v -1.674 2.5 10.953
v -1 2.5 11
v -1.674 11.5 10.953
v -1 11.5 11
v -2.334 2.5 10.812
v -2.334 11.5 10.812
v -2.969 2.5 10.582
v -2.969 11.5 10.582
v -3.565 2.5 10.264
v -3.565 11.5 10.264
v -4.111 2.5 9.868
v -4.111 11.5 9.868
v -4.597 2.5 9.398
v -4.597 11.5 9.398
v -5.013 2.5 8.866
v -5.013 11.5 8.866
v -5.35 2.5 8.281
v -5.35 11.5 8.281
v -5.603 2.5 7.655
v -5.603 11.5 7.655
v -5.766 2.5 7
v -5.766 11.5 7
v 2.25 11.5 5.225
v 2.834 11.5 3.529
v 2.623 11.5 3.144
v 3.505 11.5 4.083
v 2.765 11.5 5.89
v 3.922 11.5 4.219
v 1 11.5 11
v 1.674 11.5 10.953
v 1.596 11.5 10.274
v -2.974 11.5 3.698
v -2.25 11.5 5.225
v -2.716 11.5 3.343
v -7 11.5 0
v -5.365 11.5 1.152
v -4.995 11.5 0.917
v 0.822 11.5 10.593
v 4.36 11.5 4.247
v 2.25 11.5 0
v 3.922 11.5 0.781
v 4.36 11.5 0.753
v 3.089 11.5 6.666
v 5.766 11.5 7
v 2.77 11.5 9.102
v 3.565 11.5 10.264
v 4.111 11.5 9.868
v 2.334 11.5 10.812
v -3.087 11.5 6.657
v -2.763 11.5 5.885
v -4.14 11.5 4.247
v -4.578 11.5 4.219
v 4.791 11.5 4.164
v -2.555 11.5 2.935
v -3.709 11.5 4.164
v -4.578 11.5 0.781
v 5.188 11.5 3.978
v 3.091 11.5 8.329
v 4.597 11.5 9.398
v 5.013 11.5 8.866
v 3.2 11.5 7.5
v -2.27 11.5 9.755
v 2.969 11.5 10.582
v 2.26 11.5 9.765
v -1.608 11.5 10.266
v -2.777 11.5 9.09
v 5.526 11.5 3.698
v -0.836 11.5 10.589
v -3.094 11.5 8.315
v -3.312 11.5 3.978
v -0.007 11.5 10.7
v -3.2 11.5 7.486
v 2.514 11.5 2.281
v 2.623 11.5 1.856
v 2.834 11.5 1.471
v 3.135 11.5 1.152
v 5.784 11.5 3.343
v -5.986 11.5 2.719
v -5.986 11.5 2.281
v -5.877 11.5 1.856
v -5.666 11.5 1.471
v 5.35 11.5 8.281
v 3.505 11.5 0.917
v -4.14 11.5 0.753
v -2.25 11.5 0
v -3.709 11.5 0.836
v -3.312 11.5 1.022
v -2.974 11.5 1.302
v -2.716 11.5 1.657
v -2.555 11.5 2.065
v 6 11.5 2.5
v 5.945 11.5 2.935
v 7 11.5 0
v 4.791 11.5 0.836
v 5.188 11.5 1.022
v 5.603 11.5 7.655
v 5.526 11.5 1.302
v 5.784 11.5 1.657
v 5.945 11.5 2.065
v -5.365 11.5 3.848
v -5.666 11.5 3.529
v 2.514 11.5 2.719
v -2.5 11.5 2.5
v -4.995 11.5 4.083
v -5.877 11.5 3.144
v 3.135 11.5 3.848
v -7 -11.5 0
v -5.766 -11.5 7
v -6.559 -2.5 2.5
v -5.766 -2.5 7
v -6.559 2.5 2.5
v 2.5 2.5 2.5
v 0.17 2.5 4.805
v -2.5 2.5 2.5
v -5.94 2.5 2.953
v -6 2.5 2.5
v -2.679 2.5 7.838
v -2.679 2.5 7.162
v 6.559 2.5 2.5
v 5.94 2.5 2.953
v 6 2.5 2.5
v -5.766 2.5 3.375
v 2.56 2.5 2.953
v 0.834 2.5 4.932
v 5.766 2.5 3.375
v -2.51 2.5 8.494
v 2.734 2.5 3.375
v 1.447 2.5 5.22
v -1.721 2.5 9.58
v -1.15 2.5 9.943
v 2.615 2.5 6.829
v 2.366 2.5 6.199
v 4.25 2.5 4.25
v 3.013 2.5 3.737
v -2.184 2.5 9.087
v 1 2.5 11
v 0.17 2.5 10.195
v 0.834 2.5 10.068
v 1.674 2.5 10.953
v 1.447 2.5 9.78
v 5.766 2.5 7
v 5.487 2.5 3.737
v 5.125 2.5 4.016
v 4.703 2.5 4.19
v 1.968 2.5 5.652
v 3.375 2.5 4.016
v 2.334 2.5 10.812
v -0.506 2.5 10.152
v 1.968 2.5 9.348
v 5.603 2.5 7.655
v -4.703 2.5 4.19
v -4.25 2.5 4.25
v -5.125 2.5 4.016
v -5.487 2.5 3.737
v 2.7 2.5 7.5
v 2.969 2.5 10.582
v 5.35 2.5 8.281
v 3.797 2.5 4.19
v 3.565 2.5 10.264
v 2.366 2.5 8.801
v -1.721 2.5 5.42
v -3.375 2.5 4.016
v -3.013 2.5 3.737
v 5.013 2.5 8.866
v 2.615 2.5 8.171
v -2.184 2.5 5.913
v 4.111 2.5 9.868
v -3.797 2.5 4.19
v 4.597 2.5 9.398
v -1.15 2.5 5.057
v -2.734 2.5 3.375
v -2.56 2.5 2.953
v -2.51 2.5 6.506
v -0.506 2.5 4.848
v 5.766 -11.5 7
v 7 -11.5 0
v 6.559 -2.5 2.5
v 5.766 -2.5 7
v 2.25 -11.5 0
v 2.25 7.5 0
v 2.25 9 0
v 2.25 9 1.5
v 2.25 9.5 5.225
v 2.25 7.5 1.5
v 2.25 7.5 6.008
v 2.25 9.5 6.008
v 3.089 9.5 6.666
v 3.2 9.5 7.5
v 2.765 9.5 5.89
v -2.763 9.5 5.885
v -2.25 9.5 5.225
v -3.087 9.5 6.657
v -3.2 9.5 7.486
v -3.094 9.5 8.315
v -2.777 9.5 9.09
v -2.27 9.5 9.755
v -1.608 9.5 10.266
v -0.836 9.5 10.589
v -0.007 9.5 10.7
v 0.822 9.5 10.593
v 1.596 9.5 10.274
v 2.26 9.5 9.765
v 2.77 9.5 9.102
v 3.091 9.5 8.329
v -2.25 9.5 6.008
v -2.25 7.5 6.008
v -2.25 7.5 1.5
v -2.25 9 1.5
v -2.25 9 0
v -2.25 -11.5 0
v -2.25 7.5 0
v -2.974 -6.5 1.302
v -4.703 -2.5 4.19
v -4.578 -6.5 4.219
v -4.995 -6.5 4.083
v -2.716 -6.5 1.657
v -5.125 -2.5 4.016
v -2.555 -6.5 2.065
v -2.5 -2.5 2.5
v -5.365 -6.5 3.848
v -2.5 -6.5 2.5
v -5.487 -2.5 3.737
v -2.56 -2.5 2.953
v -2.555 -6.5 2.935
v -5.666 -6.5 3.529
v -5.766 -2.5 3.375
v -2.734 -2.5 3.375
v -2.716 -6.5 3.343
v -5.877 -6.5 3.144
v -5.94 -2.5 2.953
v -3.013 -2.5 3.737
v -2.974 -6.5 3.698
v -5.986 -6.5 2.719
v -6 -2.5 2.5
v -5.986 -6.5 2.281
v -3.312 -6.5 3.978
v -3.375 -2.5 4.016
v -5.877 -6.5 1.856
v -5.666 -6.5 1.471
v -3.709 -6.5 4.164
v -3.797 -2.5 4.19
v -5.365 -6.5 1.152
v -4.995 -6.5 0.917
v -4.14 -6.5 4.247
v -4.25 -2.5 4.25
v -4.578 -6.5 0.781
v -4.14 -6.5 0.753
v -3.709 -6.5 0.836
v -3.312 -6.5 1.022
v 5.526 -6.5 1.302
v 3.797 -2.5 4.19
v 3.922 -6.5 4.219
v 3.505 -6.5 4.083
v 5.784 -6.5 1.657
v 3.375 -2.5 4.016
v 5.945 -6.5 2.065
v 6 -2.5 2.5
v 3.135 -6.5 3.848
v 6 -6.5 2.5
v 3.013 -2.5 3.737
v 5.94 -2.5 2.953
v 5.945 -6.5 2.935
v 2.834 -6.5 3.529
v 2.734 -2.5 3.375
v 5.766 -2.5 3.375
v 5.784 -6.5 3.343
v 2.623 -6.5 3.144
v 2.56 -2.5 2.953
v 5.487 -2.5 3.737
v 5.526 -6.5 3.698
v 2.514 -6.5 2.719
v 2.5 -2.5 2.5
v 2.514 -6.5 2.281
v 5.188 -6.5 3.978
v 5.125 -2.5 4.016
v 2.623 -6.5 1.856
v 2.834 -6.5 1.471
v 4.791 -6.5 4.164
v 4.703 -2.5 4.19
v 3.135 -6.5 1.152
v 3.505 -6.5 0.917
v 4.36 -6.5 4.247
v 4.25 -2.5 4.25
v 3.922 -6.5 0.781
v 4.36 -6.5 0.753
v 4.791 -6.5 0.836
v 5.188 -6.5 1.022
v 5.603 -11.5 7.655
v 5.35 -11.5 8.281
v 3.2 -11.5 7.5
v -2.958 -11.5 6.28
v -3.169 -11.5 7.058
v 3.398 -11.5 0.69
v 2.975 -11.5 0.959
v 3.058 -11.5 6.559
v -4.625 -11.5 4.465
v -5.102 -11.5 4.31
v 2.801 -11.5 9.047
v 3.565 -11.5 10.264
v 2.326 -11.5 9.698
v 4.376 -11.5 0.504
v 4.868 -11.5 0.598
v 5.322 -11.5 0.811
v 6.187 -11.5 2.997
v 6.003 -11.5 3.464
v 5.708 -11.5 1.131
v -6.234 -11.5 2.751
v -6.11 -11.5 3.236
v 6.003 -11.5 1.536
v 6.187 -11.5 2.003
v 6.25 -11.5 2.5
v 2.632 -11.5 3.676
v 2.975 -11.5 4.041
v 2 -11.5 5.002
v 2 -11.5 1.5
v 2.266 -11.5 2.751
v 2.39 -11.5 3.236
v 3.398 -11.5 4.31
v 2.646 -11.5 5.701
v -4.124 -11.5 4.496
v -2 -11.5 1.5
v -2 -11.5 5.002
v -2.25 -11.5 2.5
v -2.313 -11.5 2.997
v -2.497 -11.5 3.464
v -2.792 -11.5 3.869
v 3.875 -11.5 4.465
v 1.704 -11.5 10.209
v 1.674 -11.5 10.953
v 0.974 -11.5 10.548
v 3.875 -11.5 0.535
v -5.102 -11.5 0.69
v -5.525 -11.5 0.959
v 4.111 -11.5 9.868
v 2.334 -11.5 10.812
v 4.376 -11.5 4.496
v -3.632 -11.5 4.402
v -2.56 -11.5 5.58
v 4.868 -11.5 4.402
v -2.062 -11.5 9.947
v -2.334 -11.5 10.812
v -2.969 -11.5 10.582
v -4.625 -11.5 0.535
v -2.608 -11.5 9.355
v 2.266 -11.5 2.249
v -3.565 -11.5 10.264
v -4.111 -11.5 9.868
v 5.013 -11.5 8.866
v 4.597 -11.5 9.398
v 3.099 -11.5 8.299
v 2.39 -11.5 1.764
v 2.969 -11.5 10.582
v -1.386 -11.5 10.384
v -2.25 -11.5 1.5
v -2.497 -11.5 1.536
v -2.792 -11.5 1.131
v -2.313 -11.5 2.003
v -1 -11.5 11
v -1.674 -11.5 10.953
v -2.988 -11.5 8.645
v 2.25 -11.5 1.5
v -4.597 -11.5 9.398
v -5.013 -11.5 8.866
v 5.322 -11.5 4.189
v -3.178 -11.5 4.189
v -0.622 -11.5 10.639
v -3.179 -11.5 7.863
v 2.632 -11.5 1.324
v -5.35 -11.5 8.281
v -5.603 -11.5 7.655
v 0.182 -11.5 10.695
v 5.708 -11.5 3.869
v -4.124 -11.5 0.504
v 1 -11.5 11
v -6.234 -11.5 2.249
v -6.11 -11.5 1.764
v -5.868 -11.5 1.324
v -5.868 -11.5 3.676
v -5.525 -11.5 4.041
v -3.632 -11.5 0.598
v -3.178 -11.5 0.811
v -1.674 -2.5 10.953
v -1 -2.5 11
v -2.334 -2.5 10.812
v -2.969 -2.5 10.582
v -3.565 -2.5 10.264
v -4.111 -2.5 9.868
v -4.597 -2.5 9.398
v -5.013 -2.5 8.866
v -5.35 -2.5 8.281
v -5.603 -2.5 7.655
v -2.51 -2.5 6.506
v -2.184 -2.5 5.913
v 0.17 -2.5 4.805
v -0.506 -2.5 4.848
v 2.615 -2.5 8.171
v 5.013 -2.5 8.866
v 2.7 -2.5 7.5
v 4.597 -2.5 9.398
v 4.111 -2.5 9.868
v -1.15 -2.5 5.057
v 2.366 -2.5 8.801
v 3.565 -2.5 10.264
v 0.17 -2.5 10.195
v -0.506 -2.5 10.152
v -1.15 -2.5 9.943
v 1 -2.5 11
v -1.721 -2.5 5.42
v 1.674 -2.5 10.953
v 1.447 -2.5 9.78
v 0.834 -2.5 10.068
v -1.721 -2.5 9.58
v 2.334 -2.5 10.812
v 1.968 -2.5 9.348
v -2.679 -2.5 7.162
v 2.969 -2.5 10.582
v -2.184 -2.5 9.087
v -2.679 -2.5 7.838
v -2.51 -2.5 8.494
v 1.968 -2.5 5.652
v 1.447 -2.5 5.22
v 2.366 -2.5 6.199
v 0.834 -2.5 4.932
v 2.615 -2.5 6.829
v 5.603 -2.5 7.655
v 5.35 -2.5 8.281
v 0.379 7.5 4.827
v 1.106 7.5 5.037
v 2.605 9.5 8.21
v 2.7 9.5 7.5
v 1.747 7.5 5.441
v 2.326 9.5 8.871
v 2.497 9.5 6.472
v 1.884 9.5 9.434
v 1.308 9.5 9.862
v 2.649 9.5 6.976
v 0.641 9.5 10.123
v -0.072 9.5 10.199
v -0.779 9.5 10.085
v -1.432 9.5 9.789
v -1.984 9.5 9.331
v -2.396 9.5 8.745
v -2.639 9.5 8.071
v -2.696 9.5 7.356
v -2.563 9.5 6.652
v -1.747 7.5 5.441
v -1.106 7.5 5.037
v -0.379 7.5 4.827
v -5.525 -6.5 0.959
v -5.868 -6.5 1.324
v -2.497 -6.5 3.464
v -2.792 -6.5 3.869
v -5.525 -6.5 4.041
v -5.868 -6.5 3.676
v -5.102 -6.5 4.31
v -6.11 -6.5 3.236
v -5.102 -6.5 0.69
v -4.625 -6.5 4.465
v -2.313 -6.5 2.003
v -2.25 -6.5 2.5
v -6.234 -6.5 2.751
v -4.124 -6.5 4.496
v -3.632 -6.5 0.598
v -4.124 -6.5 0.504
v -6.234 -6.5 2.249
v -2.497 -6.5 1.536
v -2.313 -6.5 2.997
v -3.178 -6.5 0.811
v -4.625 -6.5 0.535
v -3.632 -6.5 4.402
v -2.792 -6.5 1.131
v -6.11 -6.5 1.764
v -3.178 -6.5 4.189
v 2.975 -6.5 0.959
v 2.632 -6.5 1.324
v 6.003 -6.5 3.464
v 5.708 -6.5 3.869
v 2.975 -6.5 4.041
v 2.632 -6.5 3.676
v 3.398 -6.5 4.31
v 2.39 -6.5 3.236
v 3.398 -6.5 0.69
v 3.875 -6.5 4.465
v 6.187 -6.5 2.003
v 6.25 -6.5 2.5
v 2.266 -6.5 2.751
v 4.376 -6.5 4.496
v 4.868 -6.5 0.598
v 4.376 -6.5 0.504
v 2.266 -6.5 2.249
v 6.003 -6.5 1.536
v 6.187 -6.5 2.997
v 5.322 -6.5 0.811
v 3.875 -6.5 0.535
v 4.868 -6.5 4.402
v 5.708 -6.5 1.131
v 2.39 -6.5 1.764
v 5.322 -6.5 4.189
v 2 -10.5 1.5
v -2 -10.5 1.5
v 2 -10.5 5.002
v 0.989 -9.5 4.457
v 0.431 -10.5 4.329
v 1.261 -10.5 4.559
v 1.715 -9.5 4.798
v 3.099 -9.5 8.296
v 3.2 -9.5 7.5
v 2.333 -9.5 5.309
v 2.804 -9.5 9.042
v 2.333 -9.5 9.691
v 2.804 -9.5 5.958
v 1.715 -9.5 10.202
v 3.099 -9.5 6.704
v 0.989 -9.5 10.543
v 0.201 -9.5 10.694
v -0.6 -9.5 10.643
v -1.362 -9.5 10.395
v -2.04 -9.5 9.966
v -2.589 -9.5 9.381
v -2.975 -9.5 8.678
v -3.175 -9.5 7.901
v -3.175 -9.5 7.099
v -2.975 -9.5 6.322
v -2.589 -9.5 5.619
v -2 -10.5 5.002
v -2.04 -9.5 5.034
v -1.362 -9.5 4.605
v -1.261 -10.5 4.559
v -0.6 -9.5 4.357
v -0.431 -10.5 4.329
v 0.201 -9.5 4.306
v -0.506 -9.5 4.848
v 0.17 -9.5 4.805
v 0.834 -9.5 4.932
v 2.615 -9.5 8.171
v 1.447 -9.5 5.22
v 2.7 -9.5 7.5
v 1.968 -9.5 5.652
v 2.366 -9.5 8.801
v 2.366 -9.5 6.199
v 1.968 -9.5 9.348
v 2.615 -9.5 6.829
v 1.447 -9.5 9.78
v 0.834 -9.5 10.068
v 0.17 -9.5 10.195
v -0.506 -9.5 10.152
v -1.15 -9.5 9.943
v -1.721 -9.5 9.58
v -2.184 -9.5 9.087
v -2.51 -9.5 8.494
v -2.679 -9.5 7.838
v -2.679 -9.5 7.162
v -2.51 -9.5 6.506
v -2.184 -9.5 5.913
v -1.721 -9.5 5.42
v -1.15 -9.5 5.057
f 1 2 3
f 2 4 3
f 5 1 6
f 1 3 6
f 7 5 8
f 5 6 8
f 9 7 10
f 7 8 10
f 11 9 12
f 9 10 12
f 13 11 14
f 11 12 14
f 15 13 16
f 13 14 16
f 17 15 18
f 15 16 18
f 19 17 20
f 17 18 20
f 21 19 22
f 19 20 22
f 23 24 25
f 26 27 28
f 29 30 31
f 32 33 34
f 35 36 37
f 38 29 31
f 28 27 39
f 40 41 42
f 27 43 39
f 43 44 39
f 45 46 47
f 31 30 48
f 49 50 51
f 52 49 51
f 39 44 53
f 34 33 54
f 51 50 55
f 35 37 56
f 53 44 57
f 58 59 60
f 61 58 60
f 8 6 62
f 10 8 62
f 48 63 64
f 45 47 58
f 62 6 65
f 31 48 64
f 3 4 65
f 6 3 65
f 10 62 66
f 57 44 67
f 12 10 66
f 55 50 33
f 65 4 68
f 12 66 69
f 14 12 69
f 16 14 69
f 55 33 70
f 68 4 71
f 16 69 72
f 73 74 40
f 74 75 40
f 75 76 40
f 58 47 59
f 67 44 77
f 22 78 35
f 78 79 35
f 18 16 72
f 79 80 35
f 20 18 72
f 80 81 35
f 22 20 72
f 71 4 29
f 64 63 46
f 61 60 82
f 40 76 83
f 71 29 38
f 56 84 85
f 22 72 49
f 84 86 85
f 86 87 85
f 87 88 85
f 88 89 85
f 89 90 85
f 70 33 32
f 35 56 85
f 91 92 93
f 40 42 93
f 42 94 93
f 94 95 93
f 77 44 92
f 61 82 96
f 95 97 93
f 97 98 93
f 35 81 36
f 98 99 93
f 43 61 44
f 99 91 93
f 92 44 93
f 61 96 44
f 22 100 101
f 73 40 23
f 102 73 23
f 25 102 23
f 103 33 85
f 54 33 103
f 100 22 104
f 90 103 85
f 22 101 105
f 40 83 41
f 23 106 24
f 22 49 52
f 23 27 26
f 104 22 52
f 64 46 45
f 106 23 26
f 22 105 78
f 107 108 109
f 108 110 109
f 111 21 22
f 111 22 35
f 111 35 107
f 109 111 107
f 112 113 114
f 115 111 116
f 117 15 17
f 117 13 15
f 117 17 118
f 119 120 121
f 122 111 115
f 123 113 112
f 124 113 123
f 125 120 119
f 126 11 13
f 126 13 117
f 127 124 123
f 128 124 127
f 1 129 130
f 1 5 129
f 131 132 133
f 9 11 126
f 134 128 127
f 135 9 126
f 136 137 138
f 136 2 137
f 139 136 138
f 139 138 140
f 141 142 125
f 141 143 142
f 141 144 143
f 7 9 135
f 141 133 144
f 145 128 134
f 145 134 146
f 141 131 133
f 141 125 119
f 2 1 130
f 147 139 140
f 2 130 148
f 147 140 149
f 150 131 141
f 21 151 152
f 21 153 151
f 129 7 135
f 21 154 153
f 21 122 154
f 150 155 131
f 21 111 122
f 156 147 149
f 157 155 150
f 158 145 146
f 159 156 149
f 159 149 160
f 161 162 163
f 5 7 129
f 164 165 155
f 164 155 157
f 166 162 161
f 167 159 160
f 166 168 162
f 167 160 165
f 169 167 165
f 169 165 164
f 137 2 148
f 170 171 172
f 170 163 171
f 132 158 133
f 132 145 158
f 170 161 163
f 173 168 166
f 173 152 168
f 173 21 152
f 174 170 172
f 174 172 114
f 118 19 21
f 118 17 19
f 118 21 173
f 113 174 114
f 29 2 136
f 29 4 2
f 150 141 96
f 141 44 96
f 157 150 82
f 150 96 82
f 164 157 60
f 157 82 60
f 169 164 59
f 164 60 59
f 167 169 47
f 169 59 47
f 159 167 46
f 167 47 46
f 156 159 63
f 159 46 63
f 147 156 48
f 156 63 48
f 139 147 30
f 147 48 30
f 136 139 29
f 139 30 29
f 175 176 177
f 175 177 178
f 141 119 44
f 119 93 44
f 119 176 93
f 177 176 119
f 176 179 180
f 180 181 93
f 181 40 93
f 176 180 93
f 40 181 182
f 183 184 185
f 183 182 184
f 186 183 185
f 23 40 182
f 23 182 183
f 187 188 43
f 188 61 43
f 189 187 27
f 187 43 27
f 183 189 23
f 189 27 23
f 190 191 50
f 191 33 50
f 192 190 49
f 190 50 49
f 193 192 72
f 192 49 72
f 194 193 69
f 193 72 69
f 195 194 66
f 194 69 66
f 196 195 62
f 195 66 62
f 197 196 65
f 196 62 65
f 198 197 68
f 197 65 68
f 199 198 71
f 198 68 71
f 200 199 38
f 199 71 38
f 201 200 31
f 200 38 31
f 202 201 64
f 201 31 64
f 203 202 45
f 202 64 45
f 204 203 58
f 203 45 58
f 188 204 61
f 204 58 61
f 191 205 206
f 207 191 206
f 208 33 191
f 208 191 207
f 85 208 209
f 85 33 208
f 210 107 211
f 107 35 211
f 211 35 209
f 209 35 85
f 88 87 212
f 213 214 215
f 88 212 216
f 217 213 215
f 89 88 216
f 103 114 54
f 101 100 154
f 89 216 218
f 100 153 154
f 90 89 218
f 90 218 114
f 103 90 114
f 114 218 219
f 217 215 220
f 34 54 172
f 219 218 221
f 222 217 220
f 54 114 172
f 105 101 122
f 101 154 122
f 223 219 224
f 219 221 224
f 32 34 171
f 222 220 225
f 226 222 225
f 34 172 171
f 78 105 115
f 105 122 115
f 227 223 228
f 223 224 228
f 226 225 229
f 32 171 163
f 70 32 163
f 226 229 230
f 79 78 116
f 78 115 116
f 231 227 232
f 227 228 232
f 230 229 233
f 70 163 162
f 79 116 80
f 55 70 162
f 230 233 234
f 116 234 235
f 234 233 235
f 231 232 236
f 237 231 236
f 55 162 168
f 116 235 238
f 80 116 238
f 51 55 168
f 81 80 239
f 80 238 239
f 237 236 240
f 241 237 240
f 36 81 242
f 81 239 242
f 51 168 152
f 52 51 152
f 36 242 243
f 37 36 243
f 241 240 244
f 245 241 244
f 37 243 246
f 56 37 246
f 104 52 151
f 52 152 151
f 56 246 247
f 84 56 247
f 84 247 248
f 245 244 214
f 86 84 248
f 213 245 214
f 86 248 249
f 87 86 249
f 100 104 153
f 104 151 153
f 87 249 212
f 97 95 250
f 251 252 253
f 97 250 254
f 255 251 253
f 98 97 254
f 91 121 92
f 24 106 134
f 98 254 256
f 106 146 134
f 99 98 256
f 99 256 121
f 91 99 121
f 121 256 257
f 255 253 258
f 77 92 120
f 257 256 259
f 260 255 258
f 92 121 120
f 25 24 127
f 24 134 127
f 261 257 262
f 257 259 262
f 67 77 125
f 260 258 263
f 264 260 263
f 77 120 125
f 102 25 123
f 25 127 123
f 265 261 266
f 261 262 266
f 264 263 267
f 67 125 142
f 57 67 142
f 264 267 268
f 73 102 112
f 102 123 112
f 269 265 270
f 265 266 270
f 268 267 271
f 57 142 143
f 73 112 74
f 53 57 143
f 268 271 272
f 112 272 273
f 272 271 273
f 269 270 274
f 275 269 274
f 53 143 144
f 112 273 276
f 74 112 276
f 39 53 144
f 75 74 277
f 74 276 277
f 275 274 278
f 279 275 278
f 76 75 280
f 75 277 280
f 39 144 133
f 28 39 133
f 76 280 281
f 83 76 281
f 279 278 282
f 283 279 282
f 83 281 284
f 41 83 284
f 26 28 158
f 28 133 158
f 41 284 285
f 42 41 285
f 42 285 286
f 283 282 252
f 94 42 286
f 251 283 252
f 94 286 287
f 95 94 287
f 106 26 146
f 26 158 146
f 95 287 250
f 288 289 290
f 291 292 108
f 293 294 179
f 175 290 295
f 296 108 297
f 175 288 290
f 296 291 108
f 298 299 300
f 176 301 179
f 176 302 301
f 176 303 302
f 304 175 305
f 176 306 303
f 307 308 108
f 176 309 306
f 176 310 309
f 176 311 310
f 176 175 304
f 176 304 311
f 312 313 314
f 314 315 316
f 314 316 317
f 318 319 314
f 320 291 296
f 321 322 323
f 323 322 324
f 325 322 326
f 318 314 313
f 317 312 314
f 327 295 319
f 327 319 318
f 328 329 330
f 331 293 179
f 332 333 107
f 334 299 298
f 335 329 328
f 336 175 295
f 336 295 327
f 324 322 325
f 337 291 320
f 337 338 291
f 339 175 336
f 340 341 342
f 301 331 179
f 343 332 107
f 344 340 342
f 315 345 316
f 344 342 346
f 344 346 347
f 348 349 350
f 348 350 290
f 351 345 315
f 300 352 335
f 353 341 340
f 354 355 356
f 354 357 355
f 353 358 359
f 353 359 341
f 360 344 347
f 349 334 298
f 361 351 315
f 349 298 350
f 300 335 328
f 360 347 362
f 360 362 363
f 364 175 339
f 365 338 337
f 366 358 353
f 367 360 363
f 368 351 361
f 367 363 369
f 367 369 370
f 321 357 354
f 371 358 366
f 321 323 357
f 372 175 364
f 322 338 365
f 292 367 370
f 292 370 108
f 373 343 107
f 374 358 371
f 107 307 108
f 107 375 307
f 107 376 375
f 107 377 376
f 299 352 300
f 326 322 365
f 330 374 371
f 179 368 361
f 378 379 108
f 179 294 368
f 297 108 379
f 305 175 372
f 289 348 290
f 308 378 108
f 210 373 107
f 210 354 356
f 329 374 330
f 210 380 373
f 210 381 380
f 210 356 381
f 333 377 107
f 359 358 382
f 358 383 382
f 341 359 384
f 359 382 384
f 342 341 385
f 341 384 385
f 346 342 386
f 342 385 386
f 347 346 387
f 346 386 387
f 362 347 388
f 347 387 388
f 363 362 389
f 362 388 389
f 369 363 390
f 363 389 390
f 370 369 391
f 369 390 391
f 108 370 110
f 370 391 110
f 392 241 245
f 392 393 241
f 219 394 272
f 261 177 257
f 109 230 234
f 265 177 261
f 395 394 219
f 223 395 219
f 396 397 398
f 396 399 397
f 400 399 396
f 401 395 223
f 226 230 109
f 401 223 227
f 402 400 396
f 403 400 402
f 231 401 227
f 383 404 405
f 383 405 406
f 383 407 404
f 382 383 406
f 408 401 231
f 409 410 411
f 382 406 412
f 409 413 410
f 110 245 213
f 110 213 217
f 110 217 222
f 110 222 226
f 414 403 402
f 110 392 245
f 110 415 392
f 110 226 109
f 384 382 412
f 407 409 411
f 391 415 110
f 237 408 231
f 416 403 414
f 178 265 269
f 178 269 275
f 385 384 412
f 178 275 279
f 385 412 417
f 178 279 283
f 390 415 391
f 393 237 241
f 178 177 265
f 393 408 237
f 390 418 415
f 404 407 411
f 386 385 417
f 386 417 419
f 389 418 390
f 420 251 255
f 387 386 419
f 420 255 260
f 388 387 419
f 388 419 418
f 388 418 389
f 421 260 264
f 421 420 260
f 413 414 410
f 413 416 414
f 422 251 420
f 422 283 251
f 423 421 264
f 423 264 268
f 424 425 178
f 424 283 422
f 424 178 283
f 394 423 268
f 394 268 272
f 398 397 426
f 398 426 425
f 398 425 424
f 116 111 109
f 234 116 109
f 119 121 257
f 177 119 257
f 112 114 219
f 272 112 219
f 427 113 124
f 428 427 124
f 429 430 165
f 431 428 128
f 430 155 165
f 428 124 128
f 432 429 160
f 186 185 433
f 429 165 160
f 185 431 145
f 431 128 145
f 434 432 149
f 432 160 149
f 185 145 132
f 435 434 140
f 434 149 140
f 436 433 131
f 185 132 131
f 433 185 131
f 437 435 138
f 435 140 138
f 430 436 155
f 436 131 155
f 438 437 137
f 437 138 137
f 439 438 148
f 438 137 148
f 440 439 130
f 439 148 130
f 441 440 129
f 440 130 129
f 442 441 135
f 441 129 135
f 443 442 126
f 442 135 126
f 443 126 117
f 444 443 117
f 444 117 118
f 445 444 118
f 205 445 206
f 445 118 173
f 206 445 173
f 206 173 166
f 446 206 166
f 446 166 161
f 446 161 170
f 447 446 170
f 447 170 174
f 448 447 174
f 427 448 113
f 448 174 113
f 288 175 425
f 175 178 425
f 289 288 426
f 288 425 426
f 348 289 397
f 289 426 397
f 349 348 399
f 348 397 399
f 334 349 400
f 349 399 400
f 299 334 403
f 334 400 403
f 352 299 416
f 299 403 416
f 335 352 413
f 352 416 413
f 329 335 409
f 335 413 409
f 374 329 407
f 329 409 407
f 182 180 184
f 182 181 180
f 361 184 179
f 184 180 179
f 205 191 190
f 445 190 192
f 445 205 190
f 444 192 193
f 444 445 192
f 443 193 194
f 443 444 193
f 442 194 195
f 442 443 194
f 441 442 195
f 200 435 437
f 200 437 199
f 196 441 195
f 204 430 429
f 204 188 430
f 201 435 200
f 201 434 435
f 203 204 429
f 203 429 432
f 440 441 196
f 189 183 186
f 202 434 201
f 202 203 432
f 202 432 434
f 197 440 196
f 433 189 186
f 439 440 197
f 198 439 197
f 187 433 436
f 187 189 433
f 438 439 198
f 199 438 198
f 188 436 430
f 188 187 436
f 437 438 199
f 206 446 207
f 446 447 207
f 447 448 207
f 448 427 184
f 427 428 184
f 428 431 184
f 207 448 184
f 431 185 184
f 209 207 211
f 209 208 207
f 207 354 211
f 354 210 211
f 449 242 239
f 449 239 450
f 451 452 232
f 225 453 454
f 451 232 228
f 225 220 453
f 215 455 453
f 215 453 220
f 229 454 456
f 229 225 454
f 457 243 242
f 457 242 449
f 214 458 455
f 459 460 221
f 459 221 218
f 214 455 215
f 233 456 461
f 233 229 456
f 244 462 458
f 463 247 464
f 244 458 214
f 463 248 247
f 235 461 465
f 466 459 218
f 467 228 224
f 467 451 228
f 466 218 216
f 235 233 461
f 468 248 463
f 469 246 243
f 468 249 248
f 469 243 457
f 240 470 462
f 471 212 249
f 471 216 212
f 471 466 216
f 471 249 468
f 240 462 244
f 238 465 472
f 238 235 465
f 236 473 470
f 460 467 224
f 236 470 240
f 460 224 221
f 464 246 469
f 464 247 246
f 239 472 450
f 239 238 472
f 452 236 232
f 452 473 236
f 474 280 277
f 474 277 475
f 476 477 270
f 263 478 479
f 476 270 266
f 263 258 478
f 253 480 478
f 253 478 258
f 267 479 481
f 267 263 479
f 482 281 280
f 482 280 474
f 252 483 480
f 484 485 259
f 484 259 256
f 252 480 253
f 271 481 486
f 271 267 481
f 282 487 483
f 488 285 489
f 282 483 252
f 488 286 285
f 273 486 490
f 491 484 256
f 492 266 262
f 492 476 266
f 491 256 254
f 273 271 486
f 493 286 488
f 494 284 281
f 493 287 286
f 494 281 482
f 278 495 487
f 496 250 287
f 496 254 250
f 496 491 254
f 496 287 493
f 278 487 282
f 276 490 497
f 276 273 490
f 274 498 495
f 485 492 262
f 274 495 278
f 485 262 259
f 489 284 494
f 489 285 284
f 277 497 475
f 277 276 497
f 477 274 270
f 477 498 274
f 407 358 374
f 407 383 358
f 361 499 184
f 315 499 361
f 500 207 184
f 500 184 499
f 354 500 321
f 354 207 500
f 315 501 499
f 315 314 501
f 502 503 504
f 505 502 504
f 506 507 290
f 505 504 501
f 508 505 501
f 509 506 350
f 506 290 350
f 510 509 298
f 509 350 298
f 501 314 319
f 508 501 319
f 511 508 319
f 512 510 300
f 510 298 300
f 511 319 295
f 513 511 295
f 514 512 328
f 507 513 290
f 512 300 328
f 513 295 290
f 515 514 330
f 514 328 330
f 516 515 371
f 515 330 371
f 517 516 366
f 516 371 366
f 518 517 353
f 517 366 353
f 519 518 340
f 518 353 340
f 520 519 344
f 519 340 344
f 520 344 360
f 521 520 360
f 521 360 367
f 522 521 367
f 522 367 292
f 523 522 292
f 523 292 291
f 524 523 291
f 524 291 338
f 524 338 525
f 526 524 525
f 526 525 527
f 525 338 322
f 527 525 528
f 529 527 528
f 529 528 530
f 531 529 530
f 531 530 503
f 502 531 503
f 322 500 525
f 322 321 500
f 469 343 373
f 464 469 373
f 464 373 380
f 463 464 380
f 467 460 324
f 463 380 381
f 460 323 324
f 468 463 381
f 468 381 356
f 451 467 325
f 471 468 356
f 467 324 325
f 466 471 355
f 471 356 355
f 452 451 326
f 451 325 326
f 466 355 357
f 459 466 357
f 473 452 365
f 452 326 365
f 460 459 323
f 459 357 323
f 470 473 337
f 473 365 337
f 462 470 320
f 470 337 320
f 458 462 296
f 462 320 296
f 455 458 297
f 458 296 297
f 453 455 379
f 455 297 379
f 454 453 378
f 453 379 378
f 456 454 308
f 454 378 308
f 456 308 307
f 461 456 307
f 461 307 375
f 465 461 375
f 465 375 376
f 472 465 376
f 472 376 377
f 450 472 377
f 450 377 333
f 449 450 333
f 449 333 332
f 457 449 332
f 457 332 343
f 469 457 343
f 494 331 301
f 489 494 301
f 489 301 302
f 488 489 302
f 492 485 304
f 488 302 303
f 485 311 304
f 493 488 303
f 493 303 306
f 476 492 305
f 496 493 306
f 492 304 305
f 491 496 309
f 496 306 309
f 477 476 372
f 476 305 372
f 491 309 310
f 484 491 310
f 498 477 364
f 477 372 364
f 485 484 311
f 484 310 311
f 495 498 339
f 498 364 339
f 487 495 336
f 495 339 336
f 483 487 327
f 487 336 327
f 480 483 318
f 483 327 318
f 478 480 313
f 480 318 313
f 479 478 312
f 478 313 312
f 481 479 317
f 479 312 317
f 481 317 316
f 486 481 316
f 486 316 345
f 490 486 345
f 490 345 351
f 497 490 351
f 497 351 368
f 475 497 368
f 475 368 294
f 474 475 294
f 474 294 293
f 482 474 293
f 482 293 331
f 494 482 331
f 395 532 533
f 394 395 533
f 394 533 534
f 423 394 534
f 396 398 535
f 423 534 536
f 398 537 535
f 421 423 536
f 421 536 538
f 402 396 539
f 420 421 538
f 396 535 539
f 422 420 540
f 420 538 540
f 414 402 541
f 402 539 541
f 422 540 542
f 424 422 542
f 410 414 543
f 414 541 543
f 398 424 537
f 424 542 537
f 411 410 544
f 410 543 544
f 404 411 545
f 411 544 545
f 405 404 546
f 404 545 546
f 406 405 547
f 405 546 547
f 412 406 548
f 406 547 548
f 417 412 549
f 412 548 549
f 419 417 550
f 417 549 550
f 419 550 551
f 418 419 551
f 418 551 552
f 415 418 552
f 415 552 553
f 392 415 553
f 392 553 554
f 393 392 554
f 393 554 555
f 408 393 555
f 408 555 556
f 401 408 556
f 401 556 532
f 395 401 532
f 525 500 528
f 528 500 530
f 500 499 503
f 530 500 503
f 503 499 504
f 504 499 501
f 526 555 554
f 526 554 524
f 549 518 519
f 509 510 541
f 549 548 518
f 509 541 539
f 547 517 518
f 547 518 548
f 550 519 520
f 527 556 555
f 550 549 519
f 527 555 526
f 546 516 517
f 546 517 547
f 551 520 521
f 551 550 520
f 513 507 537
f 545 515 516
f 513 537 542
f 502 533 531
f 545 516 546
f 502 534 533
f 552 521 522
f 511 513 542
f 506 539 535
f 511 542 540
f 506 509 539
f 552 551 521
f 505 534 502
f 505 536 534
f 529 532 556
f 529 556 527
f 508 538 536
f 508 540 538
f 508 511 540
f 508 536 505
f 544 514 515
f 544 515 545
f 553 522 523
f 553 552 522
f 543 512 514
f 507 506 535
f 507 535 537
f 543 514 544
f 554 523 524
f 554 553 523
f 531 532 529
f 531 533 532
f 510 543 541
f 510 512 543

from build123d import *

# Parameters (mm, degrees)
PAD_DEPTH       = 11.5
SKETCH001_W     = 14
SKETCH001_H     = 5
POCKET_DEPTH    = 8.5
SKETCH002_R     = 1.75
POCKET001_DEPTH = 23.001
SKETCH003_R     = 2.7
POCKET002_DEPTH = 23.001
SKETCH004_R     = 2
POCKET003_DEPTH = 5
SKETCH005_W     = 4.5
SKETCH005_H     = 7.5
POCKET004_DEPTH = 4
SKETCH006_W     = 4
SKETCH006_H     = 7.5
POCKET005_DEPTH = 1
SKETCH007_W     = 4.5
SKETCH007_H     = 21
POCKET006_DEPTH = 1.5
SKETCH008_R     = 3.2
POCKET007_DEPTH = 2
SKETCH009_R     = 3.2
POCKET008_DEPTH = 2


with BuildPart() as part:
    # Sketch → Pad (new body, symmetric)
    with BuildSketch(Plane.XZ):
        with BuildLine():
            Line((-7, 0), (7, 0))
            Line((7, 0), (5.766491, 7))
            ThreePointArc((5.766491, 7), (4.111247, 9.867503), (1, 11))
            Line((-1, 11), (1, 11))
            ThreePointArc((-1, 11), (-4.111247, 9.867503), (-5.766491, 7))
            Line((-5.766491, 7), (-7, 0))
        make_face()
    extrude(amount=PAD_DEPTH, both=True)

    # Sketch001 → Pocket (cut)
    with BuildSketch(Plane(origin=(0, 0, 11), x_dir=(-1, 0, 0), z_dir=(0, 0, 1))):
        Rectangle(SKETCH001_W, SKETCH001_H)
    extrude(amount=-POCKET_DEPTH, mode=Mode.SUBTRACT)

    # Sketch002 → Pocket001 (cut, through all)
    with BuildSketch(Plane.XZ.offset(11.5)):
        with Locations((-4.25, 2.5)):
            Circle(SKETCH002_R)
        with Locations((4.25, 2.5)):
            Circle(SKETCH002_R)
    extrude(amount=-POCKET001_DEPTH, mode=Mode.SUBTRACT)

    # Sketch003 → Pocket002 (cut, through all)
    with BuildSketch(Plane.XZ.offset(11.5)):
        with Locations((0, 7.5)):
            Circle(SKETCH003_R)
    extrude(amount=-POCKET002_DEPTH, mode=Mode.SUBTRACT)

    # Sketch004 → Pocket003 (cut)
    with BuildSketch(Plane.XZ.offset(11.5)):
        with Locations((-4.25, 2.5)):
            Circle(SKETCH004_R)
        with Locations((4.25, 2.5)):
            Circle(SKETCH004_R)
    extrude(amount=-POCKET003_DEPTH, mode=Mode.SUBTRACT)

    # Sketch005 → Pocket004 (cut)
    with BuildSketch(Plane(origin=(0, 11.5, 0), x_dir=(1, 0, 0), z_dir=(0, 1, 0))):
        with Locations((0, -3.75)):
            Rectangle(SKETCH005_W, SKETCH005_H)
    extrude(amount=-POCKET004_DEPTH, mode=Mode.SUBTRACT)

    # Sketch006 → Pocket005 (cut)
    with BuildSketch(Plane.XZ.offset(11.5)):
        with Locations((0, 3.75)):
            Rectangle(SKETCH006_W, SKETCH006_H)
    extrude(amount=-POCKET005_DEPTH, mode=Mode.SUBTRACT)

    # Sketch007 → Pocket006 (cut)
    with BuildSketch(Plane(origin=(0, 0, 0), x_dir=(1, 0, 0), z_dir=(0, 0, -1))):
        with Locations((0, 1.5)):
            Rectangle(SKETCH007_W, SKETCH007_H)
    extrude(amount=-POCKET006_DEPTH, mode=Mode.SUBTRACT)

    # Sketch008 → Pocket007 (cut)
    with BuildSketch(Plane(origin=(0, 11.5, 0), x_dir=(1, 0, 0), z_dir=(0, 1, 0))):
        with Locations((0, -7.5)):
            Circle(SKETCH008_R)
    extrude(amount=-POCKET007_DEPTH, mode=Mode.SUBTRACT)

    # Sketch009 → Pocket008 (cut)
    with BuildSketch(Plane.XZ.offset(11.5)):
        with Locations((0, 7.5)):
            Circle(SKETCH009_R)
    extrude(amount=-POCKET008_DEPTH, mode=Mode.SUBTRACT)


solid = part.part
